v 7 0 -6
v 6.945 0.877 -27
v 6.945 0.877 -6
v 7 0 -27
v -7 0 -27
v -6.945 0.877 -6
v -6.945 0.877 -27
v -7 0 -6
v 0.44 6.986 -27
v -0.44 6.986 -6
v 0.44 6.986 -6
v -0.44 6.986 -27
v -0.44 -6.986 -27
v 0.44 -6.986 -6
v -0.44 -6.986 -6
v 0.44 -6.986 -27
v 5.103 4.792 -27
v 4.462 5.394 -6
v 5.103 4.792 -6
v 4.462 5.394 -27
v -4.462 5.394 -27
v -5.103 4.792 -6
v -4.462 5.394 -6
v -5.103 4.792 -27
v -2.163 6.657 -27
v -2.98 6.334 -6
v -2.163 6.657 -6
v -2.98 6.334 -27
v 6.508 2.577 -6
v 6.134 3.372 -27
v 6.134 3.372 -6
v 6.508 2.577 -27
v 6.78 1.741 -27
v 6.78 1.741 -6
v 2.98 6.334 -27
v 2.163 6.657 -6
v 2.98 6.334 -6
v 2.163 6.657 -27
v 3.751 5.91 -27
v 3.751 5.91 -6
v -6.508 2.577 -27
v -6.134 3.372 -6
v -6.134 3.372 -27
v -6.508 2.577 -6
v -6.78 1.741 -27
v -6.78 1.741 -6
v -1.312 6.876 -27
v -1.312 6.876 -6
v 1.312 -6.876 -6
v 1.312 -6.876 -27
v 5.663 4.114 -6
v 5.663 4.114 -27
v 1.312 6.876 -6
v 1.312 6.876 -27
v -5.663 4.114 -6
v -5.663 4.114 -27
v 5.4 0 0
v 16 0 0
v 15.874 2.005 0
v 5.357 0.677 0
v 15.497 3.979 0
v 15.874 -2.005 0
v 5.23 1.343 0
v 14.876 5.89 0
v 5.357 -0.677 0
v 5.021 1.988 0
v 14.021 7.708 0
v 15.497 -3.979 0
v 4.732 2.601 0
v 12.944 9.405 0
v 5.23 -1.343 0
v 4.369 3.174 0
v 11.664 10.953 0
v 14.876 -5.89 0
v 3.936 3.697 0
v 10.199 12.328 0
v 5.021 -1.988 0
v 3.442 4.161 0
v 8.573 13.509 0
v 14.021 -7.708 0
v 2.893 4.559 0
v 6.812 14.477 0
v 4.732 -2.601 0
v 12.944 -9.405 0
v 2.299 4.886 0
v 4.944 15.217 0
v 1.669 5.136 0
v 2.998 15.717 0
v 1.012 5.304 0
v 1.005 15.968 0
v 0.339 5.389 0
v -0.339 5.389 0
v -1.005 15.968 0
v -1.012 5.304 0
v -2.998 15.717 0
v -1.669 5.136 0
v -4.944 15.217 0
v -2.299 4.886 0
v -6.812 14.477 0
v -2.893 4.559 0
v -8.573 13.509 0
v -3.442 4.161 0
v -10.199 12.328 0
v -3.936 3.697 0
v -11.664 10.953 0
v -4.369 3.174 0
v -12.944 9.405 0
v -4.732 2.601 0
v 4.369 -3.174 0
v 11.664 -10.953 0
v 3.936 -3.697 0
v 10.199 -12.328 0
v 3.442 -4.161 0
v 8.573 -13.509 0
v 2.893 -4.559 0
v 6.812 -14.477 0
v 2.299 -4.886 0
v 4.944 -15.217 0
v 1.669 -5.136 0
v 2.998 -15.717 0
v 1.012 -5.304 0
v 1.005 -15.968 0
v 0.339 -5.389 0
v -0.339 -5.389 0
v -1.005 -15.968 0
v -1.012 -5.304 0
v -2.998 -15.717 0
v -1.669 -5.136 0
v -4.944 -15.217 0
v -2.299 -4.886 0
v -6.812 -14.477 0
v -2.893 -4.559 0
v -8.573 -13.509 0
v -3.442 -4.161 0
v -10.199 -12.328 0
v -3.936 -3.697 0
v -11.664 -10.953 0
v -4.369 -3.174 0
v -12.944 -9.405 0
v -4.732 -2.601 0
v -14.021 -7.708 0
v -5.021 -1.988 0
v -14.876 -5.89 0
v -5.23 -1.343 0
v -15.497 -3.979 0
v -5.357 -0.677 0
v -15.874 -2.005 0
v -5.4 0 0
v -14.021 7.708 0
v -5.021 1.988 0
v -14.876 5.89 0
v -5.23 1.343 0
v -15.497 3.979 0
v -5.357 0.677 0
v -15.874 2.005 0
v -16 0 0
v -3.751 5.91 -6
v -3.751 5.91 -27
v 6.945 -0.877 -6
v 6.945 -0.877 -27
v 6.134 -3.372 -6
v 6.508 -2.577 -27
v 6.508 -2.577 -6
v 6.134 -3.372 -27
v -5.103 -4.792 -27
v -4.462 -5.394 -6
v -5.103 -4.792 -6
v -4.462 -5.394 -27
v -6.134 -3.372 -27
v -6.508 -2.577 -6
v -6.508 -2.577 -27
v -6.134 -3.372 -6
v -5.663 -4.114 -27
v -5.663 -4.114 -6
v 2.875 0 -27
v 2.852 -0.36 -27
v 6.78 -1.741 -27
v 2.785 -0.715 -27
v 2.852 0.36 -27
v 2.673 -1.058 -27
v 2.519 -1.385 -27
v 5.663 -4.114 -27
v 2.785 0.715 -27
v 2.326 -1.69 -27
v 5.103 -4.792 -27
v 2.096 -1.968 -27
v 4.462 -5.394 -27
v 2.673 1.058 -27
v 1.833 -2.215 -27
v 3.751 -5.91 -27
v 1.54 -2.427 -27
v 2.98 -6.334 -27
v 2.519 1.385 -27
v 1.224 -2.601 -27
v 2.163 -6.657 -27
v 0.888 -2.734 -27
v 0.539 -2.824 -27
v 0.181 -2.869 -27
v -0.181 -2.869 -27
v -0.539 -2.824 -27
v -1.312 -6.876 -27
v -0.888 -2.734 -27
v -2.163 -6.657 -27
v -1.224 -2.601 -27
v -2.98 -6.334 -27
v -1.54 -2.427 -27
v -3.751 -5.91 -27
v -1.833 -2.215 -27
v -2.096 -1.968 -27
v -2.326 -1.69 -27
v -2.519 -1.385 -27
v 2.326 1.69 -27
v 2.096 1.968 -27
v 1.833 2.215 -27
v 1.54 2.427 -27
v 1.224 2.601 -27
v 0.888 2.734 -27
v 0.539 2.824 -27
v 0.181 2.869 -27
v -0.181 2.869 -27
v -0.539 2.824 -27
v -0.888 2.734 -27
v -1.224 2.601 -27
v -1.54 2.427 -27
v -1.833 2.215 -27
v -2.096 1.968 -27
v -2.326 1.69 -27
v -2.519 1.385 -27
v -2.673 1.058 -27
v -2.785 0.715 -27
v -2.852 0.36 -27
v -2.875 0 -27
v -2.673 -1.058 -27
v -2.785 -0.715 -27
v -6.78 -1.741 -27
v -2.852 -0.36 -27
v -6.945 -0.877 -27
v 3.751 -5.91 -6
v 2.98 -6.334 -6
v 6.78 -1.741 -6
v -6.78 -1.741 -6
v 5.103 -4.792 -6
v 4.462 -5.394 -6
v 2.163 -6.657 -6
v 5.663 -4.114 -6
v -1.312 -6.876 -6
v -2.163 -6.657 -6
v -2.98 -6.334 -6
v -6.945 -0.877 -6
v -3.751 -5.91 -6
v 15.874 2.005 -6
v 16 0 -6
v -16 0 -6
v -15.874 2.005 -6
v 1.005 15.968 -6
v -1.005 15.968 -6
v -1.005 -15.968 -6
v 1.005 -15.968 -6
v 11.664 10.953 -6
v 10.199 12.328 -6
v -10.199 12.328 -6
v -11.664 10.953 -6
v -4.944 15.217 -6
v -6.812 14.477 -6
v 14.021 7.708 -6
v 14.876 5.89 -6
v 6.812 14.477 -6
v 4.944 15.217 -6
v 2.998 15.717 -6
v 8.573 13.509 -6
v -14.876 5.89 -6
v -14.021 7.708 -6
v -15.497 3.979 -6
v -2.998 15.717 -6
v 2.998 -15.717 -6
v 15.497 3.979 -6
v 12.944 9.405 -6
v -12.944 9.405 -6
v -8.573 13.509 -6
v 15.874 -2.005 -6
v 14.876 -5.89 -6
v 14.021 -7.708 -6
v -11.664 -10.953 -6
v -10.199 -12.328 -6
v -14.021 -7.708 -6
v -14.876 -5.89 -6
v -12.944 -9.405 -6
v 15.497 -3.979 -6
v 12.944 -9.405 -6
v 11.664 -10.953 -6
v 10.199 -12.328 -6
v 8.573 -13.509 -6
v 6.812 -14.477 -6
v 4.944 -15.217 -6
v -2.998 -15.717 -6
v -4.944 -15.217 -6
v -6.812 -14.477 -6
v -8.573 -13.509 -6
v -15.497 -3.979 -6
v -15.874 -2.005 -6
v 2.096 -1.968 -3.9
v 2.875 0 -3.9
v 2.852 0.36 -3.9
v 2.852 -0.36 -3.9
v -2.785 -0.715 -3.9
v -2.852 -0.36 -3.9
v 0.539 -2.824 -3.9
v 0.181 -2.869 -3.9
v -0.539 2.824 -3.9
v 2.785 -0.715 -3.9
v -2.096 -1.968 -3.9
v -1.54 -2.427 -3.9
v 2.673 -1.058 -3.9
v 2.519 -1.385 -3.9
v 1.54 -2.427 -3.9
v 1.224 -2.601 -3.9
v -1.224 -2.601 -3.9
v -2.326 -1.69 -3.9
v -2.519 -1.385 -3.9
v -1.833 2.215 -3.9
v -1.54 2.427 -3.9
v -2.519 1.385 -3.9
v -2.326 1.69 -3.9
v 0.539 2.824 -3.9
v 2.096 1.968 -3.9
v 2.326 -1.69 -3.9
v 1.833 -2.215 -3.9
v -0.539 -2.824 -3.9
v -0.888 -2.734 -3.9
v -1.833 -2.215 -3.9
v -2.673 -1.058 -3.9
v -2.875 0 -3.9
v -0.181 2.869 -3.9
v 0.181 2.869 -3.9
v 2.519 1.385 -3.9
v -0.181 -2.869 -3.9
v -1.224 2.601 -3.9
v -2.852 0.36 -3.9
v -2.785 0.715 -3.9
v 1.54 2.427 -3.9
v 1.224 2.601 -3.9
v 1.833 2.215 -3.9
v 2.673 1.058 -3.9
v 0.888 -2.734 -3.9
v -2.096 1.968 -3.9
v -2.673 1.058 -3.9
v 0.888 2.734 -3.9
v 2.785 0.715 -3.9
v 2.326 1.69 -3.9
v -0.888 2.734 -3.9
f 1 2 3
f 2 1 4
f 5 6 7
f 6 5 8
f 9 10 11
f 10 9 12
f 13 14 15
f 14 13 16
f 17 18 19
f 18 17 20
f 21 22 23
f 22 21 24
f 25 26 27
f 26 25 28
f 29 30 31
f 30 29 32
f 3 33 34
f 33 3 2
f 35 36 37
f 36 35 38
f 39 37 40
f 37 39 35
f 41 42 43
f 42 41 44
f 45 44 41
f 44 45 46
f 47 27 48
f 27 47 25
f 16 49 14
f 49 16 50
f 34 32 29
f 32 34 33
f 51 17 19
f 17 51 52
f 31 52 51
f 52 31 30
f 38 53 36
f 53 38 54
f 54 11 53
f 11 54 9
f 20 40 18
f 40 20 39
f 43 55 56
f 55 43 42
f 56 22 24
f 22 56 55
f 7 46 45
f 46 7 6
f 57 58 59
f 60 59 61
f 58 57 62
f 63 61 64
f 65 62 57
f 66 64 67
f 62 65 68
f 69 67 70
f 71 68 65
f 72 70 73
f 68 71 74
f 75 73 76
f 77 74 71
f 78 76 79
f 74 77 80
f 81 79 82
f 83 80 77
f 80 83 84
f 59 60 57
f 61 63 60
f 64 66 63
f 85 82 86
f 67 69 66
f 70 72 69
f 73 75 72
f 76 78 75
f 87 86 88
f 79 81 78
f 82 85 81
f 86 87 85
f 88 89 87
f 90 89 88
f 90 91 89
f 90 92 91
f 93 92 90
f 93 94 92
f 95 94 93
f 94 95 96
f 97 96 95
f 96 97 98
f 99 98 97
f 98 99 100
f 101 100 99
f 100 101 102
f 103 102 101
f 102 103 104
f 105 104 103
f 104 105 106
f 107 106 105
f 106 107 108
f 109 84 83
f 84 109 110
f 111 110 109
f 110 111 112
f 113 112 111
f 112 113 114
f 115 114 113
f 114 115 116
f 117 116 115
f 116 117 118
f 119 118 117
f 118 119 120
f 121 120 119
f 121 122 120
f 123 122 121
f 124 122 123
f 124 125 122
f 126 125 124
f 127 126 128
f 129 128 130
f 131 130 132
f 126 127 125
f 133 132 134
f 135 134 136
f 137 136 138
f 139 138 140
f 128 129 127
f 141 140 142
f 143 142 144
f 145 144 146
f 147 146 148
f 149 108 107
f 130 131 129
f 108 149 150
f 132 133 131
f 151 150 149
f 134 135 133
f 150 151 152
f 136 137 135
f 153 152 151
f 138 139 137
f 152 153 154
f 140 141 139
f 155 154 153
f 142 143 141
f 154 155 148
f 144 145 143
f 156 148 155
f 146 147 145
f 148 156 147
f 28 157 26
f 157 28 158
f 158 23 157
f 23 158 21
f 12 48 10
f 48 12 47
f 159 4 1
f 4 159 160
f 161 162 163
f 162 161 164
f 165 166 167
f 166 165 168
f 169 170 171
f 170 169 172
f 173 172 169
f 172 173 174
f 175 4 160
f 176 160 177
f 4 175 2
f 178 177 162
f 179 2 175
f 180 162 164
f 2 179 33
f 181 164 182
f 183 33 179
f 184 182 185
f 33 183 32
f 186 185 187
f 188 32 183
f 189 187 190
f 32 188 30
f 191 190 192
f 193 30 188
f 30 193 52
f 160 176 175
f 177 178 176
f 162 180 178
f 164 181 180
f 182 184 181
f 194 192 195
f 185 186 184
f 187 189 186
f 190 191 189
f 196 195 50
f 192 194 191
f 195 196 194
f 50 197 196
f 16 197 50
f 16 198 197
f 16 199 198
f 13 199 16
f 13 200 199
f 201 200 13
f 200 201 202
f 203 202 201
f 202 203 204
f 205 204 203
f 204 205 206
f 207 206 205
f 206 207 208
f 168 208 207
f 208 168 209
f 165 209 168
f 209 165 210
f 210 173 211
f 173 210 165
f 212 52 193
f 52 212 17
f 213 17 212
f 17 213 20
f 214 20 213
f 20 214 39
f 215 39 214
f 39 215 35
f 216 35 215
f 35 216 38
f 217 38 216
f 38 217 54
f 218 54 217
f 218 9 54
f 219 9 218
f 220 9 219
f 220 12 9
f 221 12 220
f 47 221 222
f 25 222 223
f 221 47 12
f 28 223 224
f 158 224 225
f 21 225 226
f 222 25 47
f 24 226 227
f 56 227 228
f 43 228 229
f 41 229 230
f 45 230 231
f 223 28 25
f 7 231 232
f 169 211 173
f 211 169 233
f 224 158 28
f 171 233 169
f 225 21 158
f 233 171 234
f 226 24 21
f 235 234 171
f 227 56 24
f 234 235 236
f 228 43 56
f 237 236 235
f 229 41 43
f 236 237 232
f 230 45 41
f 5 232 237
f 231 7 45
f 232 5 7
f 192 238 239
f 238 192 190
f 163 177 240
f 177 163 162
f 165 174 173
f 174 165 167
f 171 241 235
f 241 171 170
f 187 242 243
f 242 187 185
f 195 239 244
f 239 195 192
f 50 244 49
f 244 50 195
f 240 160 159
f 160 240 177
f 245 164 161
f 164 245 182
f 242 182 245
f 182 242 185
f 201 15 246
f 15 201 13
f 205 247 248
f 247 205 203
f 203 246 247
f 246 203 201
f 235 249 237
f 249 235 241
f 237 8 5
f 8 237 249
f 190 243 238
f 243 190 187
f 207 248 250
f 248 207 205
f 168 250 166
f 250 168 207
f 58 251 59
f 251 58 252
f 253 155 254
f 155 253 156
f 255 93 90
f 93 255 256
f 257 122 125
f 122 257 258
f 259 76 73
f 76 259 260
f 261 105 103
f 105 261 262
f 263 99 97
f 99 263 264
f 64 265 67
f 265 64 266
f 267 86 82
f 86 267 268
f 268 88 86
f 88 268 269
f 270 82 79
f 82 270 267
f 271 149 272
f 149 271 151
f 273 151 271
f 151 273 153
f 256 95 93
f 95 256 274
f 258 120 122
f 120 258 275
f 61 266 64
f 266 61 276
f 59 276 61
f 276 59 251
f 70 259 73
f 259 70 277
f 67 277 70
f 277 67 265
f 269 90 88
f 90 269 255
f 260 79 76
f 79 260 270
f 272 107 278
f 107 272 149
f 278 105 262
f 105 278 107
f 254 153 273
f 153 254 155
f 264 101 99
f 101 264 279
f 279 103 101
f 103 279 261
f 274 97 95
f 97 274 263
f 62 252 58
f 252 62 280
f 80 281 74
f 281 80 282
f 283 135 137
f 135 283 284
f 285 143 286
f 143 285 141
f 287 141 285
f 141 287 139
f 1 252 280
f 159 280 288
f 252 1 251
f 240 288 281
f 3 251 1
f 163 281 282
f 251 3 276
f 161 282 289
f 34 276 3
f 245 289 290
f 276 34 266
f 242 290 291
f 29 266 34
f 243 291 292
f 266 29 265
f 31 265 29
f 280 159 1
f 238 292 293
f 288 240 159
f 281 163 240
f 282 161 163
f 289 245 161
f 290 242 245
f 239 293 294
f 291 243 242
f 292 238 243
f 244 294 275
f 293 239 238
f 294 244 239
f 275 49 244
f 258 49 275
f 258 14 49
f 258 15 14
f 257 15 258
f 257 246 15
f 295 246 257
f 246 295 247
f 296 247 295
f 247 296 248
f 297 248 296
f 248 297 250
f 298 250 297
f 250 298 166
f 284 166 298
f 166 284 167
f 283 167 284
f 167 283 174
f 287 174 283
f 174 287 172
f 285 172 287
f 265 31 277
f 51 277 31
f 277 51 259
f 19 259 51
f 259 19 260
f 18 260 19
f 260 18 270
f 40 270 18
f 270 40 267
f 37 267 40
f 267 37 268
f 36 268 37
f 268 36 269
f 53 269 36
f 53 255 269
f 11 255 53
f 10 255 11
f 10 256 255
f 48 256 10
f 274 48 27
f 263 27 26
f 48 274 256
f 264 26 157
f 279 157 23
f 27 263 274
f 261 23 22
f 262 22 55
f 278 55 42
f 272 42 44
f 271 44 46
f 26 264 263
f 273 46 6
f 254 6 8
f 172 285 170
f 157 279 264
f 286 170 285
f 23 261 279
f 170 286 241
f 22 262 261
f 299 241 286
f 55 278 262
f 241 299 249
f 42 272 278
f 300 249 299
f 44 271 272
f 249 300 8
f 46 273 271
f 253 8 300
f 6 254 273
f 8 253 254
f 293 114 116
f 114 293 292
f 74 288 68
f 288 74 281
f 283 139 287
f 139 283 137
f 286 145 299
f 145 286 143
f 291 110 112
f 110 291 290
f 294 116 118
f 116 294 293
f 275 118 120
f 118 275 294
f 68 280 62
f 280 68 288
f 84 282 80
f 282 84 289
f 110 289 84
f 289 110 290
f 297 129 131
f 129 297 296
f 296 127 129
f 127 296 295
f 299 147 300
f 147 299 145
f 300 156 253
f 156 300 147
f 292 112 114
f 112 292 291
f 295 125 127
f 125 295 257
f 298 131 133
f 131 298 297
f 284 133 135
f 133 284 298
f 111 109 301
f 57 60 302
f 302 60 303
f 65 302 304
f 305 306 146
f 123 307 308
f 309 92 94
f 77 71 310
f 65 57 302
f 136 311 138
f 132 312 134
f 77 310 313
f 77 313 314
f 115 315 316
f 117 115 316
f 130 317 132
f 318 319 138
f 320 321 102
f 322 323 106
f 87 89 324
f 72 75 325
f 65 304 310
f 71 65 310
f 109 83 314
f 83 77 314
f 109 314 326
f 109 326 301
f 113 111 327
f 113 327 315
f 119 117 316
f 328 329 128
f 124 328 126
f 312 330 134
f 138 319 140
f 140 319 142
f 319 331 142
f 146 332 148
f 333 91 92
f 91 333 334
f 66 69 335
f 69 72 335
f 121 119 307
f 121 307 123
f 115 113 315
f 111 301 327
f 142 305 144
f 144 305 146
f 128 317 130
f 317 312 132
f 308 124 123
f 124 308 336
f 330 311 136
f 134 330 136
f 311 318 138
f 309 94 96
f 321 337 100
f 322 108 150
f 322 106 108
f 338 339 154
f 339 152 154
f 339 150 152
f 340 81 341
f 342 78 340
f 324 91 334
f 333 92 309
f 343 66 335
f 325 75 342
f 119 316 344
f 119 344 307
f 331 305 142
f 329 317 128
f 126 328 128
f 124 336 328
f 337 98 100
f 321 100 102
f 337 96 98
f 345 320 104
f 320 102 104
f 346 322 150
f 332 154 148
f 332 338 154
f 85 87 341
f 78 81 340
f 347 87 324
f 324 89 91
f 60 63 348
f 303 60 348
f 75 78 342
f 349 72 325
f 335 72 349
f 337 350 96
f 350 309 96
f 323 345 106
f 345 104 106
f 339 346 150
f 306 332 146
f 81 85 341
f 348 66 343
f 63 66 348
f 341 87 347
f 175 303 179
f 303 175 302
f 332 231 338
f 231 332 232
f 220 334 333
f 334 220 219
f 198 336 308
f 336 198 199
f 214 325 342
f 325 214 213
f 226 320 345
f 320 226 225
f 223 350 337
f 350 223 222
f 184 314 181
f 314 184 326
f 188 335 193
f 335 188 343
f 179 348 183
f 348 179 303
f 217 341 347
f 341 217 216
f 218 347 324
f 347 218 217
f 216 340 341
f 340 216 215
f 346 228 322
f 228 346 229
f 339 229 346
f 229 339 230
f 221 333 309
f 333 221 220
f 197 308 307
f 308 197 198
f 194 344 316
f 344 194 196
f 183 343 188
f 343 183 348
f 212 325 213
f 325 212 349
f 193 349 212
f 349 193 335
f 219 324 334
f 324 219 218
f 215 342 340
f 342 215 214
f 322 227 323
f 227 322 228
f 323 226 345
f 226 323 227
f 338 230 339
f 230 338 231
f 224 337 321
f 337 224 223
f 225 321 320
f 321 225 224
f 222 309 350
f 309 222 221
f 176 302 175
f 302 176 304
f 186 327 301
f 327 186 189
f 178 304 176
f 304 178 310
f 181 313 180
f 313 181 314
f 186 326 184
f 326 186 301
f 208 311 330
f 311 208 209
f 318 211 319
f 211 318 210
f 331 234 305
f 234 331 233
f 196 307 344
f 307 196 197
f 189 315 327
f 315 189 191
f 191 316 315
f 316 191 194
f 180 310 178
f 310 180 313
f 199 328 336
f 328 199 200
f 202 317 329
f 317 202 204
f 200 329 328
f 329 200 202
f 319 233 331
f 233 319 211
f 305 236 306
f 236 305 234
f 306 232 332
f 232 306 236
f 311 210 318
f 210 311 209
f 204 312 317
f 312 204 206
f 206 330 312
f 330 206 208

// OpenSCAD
$fn = 50;


difference() {
	union() {
		translate(v = [0, 0, -27.0000000000]) {
			cylinder(h = 27, r = 7.0000000000);
		}
		translate(v = [0, 0, -6.0000000000]) {
			cylinder(h = 6, r = 16.0000000000);
		}
	}
	union() {
		translate(v = [0, 0, 0]) {
			rotate(a = [0, 0, 0]) {
				difference() {
					union() {
						#translate(v = [0, 0, -27.0000000000]) {
							cylinder(h = 27, r = 2.6000000000);
						}
						#translate(v = [0, 0, -3.9000000000]) {
							cylinder(h = 3.9000000000, r1 = 2.8750000000, r2 = 5.4000000000);
						}
						#translate(v = [0, 0, -27.0000000000]) {
							cylinder(h = 27, r = 2.8750000000);
						}
						#translate(v = [0, 0, -27.0000000000]) {
							cylinder(h = 27, r = 2.6000000000);
						}
					}
					union();
				}
			}
		}
	}
}
